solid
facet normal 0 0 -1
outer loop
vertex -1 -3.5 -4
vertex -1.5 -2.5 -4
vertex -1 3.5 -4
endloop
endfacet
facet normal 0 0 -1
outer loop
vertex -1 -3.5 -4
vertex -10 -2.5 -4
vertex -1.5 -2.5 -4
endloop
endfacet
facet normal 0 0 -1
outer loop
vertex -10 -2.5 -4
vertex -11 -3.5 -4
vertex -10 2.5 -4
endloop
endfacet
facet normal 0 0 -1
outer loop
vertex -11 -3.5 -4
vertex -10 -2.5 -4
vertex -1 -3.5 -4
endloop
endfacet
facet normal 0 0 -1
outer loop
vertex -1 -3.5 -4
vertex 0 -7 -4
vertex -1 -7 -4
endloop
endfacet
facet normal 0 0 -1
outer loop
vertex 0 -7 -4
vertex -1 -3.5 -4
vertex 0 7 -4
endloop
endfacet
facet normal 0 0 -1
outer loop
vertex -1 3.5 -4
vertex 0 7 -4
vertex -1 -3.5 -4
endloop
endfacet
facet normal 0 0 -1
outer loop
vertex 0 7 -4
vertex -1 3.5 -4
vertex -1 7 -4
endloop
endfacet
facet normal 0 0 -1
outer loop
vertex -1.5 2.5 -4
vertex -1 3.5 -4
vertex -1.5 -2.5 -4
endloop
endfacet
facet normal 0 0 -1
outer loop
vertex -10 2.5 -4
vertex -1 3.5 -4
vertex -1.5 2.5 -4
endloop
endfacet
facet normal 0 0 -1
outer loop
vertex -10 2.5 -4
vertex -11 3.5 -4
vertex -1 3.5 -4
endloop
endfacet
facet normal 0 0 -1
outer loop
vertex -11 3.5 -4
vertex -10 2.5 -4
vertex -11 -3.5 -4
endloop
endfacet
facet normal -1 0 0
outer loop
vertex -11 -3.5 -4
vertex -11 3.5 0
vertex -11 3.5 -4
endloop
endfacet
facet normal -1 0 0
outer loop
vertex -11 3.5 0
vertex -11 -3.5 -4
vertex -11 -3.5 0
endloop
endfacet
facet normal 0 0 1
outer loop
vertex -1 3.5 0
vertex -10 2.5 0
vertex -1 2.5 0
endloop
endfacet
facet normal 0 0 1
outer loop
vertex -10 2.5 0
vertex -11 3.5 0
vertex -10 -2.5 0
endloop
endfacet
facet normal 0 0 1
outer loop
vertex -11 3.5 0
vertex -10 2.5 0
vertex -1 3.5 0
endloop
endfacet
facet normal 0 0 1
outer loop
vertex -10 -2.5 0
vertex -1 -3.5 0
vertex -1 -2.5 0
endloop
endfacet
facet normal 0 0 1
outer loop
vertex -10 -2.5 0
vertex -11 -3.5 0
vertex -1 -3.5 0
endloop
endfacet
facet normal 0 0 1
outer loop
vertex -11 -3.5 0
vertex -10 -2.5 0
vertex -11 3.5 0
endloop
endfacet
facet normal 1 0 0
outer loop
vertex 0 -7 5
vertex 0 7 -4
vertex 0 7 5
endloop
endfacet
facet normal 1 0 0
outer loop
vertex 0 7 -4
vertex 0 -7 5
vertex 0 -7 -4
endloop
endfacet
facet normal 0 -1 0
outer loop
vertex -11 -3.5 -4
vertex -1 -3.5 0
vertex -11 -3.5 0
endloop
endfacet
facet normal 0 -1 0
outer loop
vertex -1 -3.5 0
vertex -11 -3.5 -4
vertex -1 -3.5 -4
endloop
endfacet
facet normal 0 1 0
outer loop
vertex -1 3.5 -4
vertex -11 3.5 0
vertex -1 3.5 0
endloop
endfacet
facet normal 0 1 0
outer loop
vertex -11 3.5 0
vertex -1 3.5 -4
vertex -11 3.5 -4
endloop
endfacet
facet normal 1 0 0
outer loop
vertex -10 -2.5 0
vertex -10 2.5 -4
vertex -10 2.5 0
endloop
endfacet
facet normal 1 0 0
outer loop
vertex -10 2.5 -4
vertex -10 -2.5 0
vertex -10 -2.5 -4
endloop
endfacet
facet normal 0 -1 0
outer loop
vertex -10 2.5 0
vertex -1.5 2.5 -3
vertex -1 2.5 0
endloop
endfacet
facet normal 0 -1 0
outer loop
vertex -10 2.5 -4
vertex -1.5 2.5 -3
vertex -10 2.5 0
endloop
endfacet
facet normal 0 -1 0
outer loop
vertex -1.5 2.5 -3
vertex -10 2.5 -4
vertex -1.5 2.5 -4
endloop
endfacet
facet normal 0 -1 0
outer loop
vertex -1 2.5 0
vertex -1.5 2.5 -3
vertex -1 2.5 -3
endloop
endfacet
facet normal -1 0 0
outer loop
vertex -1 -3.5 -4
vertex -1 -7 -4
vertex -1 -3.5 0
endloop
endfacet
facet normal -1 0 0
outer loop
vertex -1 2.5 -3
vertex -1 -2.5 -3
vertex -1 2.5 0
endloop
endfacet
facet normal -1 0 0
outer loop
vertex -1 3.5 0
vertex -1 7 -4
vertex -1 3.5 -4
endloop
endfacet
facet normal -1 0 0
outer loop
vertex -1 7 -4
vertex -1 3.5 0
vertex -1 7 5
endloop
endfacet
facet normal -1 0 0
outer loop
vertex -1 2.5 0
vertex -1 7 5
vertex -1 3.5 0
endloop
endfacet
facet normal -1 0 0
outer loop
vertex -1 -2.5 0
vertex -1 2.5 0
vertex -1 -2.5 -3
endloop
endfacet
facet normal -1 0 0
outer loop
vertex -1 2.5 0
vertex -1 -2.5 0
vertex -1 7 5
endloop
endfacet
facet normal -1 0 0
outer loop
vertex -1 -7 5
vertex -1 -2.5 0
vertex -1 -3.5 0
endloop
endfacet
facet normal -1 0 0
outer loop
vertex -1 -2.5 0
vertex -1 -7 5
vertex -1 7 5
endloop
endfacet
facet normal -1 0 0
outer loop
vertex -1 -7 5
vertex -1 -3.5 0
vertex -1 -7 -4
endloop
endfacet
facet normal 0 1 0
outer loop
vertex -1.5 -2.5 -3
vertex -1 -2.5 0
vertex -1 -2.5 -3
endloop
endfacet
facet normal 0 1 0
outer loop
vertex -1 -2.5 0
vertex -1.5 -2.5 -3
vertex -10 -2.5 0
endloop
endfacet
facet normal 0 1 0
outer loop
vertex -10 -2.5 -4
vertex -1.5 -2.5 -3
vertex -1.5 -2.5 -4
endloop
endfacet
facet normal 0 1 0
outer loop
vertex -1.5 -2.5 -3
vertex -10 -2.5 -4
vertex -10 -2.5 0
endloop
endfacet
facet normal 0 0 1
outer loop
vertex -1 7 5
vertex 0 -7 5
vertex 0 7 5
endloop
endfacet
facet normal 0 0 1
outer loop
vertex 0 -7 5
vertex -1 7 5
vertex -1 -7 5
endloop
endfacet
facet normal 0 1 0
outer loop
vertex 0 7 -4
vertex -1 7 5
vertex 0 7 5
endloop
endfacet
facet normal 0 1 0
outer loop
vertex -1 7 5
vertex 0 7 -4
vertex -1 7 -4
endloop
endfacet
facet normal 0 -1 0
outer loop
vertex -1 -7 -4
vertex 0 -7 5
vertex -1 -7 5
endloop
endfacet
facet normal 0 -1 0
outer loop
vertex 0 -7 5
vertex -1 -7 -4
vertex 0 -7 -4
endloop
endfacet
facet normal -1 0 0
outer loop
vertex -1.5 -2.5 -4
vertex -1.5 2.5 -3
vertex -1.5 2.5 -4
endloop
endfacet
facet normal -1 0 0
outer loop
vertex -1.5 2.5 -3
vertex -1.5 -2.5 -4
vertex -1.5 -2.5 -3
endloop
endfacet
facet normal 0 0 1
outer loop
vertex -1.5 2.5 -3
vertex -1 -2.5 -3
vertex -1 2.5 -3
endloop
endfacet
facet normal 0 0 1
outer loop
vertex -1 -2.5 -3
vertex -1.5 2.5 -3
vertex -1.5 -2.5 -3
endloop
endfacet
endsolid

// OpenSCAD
$fs = 0.1;  // Don't generate smaller facets than 0.1 mm
$fa = 5;    // Don't generate larger angles than 5 degrees

rotate([0, -90, 0])
union() {
    base();
    frame(5, 9, 1);
    translate([-4, -2.5, 1]) color("green") cube([1, 5, .5]);
}

module base() {
translate([-4, -7, 0])
    cube([9, 14, 1]);
}


//translate([0, -2.5, 9]) color("red") cube([4, 5, 1]);


module frame(opening_width, opening_height, thickness) {
    depth = 4;
    translate([-depth, - (opening_width + 2 * thickness) / 2, 0]) 
        difference() {
            cube([depth, opening_width + 2 * thickness, opening_height + 2 * thickness]);
            color("blue") translate([-1, thickness, thickness])
                cube([7, opening_width, opening_height]);
        }
}
